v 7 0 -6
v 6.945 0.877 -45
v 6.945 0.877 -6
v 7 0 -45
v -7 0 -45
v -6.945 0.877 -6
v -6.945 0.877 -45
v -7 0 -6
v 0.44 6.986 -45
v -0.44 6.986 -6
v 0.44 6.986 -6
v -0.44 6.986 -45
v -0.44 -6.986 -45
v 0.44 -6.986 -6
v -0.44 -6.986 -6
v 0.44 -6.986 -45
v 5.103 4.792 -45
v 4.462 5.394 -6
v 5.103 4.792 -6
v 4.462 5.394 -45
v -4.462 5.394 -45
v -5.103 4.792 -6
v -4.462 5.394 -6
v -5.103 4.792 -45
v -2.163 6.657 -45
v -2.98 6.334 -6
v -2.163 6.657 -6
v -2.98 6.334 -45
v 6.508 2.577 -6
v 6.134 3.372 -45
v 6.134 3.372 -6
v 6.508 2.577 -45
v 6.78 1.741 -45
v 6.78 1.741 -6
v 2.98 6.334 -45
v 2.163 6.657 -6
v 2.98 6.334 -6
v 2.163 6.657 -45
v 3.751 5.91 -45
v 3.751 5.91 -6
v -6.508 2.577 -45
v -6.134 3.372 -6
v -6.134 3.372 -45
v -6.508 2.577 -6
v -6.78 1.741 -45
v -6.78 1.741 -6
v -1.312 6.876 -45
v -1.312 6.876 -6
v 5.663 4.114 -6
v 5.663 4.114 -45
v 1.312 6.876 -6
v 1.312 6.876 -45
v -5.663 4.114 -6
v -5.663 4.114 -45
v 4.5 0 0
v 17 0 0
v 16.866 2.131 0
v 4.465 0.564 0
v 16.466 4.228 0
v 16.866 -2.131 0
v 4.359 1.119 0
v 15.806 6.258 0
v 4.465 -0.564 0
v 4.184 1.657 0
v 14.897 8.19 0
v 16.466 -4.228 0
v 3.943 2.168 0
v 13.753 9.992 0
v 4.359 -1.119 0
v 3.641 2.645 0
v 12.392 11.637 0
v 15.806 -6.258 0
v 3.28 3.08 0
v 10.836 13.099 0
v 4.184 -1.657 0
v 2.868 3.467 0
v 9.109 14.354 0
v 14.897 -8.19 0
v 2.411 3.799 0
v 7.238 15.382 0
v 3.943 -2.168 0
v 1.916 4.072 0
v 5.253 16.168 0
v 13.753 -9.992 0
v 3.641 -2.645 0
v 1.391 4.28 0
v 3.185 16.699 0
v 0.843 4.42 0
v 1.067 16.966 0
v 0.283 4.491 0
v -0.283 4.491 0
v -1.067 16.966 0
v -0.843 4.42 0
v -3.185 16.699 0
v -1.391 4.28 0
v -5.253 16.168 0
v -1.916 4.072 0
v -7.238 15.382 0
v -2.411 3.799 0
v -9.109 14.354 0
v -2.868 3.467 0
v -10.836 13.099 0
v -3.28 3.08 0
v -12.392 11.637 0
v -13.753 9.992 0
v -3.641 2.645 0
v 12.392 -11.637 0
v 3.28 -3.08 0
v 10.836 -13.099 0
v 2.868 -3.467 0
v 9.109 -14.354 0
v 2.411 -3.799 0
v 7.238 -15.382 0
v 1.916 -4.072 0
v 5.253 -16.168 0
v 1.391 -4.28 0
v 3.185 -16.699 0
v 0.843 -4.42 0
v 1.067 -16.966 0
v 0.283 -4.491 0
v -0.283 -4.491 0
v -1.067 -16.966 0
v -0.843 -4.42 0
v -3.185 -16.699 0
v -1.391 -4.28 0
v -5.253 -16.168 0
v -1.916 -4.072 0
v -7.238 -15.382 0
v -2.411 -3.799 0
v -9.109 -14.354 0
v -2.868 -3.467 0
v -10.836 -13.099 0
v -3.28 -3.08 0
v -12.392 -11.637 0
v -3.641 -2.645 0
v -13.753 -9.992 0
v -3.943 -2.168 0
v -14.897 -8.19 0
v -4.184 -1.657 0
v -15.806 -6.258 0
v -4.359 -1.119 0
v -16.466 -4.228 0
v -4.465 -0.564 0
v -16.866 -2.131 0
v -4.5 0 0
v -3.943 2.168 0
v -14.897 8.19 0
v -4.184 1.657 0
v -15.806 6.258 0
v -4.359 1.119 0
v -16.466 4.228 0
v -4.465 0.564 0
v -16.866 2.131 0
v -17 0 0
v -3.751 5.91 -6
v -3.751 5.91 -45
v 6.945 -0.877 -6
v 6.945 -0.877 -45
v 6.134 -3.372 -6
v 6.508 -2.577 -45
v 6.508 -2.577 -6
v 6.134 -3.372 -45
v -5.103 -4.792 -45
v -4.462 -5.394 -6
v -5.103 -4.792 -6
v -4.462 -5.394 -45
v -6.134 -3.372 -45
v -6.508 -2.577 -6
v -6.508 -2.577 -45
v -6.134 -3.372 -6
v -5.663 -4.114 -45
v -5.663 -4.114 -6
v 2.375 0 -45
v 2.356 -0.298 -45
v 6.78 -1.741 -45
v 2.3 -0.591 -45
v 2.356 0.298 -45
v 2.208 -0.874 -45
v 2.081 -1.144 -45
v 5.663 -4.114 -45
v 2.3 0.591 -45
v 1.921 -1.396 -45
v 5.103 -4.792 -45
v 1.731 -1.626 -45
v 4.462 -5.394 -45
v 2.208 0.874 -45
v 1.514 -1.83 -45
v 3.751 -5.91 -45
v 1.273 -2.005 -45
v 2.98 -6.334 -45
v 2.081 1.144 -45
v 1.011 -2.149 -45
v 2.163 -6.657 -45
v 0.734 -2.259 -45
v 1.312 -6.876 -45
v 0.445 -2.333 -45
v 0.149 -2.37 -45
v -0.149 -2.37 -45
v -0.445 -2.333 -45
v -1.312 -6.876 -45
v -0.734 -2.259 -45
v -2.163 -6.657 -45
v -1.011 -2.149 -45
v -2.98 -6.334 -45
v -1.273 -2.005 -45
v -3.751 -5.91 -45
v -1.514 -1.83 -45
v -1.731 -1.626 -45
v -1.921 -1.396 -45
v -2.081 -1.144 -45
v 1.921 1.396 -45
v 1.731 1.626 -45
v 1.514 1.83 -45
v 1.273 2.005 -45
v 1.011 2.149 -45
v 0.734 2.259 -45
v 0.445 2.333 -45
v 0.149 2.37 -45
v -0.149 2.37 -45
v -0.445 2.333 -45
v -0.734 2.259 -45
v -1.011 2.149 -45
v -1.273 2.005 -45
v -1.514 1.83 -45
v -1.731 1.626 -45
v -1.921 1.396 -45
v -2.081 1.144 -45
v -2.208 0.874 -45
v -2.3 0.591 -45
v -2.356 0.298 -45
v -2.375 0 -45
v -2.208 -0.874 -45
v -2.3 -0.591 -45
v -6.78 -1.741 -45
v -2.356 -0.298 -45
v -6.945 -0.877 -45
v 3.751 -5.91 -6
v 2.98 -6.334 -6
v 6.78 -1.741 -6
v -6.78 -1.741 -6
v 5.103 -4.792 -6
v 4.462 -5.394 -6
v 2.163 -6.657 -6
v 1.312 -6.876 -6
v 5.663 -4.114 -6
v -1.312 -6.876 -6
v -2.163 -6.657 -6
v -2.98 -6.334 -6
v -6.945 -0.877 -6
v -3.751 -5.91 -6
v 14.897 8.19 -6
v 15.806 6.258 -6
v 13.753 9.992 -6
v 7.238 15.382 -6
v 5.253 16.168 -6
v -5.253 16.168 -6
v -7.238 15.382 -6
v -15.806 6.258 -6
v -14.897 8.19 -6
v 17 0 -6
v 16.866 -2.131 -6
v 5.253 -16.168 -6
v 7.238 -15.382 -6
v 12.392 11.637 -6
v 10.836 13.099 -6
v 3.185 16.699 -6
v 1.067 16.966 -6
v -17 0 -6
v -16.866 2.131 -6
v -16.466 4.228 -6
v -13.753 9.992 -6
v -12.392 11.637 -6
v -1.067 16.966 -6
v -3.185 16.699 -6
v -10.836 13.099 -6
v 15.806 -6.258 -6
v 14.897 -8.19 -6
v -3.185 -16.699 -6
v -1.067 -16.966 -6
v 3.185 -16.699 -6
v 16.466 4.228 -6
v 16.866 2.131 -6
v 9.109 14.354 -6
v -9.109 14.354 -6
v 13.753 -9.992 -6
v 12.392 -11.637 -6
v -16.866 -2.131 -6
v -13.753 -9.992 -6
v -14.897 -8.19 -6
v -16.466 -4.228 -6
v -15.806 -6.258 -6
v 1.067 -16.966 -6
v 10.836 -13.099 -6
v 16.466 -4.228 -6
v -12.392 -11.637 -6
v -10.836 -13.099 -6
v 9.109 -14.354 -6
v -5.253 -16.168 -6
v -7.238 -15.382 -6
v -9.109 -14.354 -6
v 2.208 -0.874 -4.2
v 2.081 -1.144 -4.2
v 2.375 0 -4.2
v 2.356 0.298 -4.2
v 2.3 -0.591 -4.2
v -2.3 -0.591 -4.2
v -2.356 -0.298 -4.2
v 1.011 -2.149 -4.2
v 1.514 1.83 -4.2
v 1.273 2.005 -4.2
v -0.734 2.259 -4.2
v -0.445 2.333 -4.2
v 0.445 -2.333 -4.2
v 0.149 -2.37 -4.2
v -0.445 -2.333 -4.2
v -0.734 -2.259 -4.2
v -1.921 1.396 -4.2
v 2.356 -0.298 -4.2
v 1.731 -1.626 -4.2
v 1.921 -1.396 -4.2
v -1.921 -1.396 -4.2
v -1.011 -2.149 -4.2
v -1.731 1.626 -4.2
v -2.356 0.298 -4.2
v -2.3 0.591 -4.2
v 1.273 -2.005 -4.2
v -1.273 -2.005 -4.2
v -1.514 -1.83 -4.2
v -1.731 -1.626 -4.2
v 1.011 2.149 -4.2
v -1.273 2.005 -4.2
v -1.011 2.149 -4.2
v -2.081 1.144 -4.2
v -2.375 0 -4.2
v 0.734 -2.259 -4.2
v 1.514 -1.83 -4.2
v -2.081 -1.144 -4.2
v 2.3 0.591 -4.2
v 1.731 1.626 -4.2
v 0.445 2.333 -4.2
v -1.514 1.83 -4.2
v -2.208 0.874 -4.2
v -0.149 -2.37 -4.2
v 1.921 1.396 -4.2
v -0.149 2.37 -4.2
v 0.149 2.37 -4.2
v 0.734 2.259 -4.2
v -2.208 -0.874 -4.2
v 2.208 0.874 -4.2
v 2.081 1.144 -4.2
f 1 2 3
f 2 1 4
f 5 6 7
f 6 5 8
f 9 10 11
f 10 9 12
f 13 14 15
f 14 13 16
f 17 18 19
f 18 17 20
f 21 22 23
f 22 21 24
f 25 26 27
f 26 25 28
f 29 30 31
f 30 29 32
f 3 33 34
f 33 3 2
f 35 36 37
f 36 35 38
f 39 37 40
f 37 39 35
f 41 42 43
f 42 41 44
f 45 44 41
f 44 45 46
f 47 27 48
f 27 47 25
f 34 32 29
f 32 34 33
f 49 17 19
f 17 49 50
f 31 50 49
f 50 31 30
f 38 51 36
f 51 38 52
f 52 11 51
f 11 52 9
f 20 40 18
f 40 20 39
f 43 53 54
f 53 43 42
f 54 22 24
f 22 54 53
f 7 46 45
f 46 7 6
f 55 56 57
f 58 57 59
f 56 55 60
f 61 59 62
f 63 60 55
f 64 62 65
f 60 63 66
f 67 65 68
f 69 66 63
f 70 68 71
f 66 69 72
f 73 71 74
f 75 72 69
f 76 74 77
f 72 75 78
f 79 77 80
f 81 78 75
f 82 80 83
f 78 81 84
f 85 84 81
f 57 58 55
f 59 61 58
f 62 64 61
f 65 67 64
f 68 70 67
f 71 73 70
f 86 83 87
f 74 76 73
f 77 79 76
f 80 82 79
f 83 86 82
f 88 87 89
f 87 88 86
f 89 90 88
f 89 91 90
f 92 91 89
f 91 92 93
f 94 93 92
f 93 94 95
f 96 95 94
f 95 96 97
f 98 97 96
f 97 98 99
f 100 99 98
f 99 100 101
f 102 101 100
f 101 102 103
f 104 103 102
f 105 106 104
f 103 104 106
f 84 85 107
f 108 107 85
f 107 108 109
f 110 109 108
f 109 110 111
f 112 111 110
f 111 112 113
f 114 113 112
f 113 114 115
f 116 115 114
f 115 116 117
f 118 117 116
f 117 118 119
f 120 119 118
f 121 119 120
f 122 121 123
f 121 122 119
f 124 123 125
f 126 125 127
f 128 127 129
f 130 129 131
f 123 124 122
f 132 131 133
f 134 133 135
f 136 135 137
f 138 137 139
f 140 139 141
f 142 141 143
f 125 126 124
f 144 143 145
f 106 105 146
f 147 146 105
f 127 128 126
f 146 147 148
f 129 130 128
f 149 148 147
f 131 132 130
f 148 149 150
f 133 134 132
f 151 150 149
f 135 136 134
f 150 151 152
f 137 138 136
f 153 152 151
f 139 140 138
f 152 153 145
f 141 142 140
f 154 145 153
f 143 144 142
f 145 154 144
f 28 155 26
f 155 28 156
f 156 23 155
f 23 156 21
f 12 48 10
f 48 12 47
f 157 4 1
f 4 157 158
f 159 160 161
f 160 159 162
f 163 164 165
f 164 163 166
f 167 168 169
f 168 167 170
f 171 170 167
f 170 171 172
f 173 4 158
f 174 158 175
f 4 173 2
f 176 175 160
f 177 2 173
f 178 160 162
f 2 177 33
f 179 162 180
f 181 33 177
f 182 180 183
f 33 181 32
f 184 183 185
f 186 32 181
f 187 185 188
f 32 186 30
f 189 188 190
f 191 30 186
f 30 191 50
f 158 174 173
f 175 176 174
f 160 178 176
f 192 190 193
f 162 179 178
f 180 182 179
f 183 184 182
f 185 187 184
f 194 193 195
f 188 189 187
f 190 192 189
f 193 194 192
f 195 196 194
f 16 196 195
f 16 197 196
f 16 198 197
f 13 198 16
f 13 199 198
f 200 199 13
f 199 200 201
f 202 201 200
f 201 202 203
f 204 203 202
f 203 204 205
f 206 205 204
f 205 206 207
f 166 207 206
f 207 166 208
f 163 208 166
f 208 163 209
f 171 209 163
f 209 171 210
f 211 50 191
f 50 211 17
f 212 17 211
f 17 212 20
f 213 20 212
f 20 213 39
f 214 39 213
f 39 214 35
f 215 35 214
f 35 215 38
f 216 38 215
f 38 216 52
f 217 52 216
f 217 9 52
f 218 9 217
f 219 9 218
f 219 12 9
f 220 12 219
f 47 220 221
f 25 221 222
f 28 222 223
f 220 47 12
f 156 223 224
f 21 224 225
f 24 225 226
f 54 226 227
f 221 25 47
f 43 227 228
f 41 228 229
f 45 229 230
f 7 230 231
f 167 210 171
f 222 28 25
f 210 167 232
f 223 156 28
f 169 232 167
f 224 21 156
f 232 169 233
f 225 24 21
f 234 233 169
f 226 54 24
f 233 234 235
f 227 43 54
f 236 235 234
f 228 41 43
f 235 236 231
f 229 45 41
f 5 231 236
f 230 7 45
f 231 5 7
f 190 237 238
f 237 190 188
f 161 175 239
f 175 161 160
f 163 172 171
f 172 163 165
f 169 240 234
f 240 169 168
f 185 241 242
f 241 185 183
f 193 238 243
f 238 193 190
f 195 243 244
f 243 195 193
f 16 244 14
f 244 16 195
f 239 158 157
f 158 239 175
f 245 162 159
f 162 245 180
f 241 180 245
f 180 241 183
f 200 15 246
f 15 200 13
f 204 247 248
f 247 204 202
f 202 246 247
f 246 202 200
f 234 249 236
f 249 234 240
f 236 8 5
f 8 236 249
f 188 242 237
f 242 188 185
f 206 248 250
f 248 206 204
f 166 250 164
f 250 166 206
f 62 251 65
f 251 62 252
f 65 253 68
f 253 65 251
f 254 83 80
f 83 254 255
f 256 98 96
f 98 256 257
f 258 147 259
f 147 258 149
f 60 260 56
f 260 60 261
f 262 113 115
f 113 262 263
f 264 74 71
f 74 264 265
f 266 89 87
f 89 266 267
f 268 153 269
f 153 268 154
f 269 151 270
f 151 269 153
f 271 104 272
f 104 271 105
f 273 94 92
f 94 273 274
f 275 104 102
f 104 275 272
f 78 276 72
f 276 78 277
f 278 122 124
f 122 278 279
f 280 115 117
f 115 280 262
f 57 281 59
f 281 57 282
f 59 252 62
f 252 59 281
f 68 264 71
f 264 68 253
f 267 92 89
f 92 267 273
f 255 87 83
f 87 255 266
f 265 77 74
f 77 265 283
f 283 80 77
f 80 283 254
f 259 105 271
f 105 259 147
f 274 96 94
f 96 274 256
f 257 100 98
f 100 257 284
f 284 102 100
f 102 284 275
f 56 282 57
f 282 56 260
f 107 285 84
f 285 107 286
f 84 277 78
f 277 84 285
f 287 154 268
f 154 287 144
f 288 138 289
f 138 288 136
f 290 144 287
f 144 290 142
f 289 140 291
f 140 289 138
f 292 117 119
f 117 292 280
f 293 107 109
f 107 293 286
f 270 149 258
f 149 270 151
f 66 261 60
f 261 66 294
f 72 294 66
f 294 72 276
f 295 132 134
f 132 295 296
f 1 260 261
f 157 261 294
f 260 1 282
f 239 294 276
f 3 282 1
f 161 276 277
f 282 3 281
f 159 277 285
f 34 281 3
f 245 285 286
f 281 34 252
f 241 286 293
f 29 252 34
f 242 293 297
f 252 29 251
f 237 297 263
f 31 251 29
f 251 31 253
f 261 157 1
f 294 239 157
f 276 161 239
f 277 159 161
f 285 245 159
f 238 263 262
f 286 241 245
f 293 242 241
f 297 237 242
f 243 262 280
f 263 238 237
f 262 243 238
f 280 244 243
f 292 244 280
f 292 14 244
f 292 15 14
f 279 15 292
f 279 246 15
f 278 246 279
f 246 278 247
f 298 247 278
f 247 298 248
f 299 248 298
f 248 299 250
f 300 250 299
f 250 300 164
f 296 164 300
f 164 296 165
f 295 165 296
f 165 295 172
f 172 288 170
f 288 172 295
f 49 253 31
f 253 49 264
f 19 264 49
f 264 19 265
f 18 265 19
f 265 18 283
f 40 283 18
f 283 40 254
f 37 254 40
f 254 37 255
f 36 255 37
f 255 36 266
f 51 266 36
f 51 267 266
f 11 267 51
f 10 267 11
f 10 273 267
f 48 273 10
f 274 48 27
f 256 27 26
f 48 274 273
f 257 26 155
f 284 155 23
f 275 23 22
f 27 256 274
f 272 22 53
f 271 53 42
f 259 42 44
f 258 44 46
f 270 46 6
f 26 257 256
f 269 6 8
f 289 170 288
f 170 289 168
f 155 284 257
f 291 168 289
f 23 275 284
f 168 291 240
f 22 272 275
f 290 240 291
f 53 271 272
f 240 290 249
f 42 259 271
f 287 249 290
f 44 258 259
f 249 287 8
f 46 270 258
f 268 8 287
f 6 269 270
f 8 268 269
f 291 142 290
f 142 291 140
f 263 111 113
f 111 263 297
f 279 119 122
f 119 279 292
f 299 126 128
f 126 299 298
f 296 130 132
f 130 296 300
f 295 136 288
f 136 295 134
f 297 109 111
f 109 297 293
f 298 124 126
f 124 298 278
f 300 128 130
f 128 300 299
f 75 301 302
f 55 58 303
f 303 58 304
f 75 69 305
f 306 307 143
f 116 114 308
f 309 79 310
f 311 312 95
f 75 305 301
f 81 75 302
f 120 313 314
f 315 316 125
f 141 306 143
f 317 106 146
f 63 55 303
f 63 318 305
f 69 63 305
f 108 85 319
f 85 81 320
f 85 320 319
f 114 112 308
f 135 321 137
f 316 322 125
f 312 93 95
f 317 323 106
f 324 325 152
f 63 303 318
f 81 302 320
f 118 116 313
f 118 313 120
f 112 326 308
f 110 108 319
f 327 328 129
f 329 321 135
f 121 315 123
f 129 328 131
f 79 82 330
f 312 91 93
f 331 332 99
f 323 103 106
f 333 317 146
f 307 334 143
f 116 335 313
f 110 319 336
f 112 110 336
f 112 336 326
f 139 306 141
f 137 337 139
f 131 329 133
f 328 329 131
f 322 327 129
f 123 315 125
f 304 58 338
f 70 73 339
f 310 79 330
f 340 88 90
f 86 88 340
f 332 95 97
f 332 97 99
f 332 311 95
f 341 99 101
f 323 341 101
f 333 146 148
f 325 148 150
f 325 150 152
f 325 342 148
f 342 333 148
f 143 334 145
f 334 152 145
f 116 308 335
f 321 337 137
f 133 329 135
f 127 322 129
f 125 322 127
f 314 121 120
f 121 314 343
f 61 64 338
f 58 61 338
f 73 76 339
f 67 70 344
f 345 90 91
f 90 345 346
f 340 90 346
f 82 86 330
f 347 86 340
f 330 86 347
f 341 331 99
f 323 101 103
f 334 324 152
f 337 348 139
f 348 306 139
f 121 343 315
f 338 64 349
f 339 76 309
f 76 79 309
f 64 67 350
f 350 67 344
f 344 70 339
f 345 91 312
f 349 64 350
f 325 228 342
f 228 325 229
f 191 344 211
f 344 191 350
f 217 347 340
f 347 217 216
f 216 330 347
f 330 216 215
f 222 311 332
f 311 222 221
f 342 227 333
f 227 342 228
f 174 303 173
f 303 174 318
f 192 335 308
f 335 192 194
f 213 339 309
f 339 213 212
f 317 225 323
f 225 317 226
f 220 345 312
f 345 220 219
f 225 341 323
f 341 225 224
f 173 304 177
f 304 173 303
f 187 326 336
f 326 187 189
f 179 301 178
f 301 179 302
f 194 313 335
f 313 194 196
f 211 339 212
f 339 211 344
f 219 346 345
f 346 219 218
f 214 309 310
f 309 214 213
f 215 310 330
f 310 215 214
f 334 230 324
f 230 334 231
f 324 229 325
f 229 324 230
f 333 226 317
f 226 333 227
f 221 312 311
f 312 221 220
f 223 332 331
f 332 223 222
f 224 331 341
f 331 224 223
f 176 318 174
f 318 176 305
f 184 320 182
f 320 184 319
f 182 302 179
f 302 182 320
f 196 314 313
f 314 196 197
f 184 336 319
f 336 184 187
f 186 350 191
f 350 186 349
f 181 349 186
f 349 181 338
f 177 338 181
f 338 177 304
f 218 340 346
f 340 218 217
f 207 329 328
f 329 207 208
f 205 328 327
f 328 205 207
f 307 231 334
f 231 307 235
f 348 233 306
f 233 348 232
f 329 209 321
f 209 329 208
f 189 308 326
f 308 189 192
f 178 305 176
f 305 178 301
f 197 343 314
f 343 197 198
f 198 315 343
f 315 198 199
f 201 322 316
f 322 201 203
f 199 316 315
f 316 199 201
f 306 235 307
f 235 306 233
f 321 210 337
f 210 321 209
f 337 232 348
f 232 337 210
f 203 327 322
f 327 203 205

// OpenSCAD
$fn = 50;


difference() {
	union() {
		translate(v = [0, 0, -45.0000000000]) {
			cylinder(h = 45, r = 7.0000000000);
		}
		translate(v = [0, 0, -6.0000000000]) {
			cylinder(h = 6, r = 17.0000000000);
		}
	}
	union() {
		translate(v = [0, 0, 0]) {
			rotate(a = [0, 0, 0]) {
				difference() {
					union() {
						#translate(v = [0, 0, -45.0000000000]) {
							cylinder(h = 45, r = 2.2500000000);
						}
						#translate(v = [0, 0, -4.2000000000]) {
							cylinder(h = 4.2000000000, r = 7.0000000000, r1 = 2.3750000000, r2 = 4.5000000000);
						}
						#translate(v = [0, 0, -45.0000000000]) {
							cylinder(h = 45, r = 2.3750000000);
						}
						#translate(v = [0, 0, -45.0000000000]) {
							cylinder(h = 45, r = 2.2500000000);
						}
					}
					union();
				}
			}
		}
	}
}
